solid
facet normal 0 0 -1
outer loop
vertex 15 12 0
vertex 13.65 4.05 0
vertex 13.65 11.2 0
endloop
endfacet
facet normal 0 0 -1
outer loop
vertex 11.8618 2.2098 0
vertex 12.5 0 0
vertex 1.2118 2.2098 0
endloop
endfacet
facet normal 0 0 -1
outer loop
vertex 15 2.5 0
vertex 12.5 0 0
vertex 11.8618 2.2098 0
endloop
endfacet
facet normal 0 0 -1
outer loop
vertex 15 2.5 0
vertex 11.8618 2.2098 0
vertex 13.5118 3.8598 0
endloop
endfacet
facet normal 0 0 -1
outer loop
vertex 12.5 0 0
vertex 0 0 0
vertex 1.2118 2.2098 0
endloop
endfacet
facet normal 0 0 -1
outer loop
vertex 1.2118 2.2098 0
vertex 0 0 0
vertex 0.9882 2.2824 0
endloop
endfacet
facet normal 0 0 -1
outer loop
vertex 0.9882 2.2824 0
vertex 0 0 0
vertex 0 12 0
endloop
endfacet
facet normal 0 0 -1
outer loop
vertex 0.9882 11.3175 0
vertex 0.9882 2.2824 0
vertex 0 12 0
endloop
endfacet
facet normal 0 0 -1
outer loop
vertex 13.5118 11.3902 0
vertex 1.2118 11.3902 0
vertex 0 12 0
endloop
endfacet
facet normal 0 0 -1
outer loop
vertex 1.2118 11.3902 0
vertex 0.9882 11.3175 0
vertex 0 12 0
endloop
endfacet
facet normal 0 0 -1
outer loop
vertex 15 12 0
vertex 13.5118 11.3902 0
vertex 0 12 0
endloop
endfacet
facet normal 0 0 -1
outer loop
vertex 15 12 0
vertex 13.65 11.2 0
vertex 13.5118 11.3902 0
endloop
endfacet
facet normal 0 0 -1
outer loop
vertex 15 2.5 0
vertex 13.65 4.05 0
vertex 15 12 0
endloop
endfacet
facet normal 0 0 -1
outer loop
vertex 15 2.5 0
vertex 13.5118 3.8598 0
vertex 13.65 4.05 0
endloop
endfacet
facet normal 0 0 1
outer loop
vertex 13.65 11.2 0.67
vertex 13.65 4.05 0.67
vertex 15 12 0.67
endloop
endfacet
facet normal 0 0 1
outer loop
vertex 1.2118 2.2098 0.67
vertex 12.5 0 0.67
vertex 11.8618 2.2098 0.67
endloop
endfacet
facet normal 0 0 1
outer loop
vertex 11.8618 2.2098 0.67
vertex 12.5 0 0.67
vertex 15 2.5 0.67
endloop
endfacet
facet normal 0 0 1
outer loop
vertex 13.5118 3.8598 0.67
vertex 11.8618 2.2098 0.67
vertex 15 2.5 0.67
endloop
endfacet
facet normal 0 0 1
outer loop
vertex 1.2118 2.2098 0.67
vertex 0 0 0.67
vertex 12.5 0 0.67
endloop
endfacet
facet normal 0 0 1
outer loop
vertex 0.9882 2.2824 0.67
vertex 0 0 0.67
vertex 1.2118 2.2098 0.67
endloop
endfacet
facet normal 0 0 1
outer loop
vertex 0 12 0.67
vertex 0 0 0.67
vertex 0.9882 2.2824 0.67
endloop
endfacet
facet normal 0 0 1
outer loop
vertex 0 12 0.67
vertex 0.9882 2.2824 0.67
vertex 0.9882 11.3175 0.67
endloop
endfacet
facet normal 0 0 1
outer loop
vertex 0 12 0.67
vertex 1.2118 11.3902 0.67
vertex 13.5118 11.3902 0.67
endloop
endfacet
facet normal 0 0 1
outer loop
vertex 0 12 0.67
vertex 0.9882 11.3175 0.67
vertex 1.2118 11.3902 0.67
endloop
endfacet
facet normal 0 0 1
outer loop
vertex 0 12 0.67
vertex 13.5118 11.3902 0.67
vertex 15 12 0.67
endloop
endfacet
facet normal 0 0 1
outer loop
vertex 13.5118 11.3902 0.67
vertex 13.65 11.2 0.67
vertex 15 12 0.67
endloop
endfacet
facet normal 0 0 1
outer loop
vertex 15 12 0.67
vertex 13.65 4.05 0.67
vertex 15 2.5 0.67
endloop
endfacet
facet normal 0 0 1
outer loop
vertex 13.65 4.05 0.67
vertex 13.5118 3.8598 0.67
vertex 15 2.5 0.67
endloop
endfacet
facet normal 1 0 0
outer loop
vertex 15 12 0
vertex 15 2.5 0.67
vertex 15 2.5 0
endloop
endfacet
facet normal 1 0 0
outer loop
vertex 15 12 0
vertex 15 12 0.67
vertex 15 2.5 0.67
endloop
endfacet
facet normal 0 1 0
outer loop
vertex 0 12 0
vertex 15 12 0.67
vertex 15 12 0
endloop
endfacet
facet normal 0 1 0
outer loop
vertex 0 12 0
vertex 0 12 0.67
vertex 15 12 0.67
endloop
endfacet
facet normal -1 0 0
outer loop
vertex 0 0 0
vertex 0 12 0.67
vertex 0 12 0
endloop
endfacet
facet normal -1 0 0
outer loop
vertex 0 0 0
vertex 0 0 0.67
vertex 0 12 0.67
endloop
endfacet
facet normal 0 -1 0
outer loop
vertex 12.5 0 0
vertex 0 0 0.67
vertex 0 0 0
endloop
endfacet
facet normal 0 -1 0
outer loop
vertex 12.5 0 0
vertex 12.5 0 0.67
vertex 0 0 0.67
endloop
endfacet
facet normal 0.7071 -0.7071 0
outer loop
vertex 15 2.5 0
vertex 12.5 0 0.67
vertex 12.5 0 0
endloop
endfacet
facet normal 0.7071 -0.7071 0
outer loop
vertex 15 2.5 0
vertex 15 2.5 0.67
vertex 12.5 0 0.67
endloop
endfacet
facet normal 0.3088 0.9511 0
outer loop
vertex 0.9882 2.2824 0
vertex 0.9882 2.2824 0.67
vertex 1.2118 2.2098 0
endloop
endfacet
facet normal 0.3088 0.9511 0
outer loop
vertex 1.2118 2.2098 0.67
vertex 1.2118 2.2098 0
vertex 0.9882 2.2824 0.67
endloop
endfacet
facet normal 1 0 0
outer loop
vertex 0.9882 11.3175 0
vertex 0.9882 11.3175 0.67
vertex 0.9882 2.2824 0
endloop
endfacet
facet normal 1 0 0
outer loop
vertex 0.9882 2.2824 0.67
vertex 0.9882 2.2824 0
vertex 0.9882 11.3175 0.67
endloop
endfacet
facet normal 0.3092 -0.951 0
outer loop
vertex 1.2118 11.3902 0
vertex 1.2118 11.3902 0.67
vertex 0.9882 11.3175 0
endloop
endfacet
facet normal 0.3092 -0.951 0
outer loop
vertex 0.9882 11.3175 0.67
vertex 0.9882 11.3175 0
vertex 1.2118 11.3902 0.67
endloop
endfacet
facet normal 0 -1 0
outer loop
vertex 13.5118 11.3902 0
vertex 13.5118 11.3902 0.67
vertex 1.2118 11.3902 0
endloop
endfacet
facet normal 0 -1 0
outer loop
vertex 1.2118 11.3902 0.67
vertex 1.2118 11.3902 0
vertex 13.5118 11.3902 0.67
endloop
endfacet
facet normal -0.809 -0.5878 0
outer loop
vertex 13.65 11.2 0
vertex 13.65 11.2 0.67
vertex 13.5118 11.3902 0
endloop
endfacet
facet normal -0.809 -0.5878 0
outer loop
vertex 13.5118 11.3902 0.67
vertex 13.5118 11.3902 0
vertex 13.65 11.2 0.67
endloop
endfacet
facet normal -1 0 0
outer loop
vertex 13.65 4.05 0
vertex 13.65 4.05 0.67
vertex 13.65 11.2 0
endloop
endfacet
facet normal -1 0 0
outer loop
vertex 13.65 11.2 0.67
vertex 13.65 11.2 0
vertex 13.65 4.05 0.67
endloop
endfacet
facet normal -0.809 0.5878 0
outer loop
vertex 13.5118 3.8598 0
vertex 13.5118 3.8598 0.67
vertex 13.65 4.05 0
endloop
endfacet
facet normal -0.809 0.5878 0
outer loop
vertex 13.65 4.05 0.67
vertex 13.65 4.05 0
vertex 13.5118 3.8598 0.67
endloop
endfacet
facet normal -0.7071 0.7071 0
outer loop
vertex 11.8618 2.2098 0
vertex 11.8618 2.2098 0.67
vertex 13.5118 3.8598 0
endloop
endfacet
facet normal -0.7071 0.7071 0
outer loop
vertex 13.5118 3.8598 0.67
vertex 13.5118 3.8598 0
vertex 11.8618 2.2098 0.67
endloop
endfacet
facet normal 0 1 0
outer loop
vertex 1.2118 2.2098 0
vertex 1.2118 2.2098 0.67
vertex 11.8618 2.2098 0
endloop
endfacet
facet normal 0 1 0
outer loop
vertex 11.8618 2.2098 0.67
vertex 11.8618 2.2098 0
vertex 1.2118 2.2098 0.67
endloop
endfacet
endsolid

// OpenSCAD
///////////////////
// nano to micro sim adapter (e.g. iPhone 5 to iPhone 4)
// P. Mikulastik
// patrick@mikulastik.de
// 04/2013

padding = 0.2; // padding around hole for nano sim, to make it fit nicely

linear_extrude(height=0.67) // taken from off. specs
difference() {
	// micro sim
	polygon( [ [0,0],[12.5,0],[15,2.5],[15,12],[0,12] ], [ [0,1,2,3,4] ]); // taken from off. specs

	// nano sim
	translate([1.15,2.4,0]) // don't know if these settings are correct, but they work
	minkowski() {
		polygon( [ [0,0],[10.65,0],[12.3,1.65],[12.3,8.8],[0,8.8] ], [ [0,1,2,3,4] ]); // taken from off. specs
		circle(r=padding);
	}
}
